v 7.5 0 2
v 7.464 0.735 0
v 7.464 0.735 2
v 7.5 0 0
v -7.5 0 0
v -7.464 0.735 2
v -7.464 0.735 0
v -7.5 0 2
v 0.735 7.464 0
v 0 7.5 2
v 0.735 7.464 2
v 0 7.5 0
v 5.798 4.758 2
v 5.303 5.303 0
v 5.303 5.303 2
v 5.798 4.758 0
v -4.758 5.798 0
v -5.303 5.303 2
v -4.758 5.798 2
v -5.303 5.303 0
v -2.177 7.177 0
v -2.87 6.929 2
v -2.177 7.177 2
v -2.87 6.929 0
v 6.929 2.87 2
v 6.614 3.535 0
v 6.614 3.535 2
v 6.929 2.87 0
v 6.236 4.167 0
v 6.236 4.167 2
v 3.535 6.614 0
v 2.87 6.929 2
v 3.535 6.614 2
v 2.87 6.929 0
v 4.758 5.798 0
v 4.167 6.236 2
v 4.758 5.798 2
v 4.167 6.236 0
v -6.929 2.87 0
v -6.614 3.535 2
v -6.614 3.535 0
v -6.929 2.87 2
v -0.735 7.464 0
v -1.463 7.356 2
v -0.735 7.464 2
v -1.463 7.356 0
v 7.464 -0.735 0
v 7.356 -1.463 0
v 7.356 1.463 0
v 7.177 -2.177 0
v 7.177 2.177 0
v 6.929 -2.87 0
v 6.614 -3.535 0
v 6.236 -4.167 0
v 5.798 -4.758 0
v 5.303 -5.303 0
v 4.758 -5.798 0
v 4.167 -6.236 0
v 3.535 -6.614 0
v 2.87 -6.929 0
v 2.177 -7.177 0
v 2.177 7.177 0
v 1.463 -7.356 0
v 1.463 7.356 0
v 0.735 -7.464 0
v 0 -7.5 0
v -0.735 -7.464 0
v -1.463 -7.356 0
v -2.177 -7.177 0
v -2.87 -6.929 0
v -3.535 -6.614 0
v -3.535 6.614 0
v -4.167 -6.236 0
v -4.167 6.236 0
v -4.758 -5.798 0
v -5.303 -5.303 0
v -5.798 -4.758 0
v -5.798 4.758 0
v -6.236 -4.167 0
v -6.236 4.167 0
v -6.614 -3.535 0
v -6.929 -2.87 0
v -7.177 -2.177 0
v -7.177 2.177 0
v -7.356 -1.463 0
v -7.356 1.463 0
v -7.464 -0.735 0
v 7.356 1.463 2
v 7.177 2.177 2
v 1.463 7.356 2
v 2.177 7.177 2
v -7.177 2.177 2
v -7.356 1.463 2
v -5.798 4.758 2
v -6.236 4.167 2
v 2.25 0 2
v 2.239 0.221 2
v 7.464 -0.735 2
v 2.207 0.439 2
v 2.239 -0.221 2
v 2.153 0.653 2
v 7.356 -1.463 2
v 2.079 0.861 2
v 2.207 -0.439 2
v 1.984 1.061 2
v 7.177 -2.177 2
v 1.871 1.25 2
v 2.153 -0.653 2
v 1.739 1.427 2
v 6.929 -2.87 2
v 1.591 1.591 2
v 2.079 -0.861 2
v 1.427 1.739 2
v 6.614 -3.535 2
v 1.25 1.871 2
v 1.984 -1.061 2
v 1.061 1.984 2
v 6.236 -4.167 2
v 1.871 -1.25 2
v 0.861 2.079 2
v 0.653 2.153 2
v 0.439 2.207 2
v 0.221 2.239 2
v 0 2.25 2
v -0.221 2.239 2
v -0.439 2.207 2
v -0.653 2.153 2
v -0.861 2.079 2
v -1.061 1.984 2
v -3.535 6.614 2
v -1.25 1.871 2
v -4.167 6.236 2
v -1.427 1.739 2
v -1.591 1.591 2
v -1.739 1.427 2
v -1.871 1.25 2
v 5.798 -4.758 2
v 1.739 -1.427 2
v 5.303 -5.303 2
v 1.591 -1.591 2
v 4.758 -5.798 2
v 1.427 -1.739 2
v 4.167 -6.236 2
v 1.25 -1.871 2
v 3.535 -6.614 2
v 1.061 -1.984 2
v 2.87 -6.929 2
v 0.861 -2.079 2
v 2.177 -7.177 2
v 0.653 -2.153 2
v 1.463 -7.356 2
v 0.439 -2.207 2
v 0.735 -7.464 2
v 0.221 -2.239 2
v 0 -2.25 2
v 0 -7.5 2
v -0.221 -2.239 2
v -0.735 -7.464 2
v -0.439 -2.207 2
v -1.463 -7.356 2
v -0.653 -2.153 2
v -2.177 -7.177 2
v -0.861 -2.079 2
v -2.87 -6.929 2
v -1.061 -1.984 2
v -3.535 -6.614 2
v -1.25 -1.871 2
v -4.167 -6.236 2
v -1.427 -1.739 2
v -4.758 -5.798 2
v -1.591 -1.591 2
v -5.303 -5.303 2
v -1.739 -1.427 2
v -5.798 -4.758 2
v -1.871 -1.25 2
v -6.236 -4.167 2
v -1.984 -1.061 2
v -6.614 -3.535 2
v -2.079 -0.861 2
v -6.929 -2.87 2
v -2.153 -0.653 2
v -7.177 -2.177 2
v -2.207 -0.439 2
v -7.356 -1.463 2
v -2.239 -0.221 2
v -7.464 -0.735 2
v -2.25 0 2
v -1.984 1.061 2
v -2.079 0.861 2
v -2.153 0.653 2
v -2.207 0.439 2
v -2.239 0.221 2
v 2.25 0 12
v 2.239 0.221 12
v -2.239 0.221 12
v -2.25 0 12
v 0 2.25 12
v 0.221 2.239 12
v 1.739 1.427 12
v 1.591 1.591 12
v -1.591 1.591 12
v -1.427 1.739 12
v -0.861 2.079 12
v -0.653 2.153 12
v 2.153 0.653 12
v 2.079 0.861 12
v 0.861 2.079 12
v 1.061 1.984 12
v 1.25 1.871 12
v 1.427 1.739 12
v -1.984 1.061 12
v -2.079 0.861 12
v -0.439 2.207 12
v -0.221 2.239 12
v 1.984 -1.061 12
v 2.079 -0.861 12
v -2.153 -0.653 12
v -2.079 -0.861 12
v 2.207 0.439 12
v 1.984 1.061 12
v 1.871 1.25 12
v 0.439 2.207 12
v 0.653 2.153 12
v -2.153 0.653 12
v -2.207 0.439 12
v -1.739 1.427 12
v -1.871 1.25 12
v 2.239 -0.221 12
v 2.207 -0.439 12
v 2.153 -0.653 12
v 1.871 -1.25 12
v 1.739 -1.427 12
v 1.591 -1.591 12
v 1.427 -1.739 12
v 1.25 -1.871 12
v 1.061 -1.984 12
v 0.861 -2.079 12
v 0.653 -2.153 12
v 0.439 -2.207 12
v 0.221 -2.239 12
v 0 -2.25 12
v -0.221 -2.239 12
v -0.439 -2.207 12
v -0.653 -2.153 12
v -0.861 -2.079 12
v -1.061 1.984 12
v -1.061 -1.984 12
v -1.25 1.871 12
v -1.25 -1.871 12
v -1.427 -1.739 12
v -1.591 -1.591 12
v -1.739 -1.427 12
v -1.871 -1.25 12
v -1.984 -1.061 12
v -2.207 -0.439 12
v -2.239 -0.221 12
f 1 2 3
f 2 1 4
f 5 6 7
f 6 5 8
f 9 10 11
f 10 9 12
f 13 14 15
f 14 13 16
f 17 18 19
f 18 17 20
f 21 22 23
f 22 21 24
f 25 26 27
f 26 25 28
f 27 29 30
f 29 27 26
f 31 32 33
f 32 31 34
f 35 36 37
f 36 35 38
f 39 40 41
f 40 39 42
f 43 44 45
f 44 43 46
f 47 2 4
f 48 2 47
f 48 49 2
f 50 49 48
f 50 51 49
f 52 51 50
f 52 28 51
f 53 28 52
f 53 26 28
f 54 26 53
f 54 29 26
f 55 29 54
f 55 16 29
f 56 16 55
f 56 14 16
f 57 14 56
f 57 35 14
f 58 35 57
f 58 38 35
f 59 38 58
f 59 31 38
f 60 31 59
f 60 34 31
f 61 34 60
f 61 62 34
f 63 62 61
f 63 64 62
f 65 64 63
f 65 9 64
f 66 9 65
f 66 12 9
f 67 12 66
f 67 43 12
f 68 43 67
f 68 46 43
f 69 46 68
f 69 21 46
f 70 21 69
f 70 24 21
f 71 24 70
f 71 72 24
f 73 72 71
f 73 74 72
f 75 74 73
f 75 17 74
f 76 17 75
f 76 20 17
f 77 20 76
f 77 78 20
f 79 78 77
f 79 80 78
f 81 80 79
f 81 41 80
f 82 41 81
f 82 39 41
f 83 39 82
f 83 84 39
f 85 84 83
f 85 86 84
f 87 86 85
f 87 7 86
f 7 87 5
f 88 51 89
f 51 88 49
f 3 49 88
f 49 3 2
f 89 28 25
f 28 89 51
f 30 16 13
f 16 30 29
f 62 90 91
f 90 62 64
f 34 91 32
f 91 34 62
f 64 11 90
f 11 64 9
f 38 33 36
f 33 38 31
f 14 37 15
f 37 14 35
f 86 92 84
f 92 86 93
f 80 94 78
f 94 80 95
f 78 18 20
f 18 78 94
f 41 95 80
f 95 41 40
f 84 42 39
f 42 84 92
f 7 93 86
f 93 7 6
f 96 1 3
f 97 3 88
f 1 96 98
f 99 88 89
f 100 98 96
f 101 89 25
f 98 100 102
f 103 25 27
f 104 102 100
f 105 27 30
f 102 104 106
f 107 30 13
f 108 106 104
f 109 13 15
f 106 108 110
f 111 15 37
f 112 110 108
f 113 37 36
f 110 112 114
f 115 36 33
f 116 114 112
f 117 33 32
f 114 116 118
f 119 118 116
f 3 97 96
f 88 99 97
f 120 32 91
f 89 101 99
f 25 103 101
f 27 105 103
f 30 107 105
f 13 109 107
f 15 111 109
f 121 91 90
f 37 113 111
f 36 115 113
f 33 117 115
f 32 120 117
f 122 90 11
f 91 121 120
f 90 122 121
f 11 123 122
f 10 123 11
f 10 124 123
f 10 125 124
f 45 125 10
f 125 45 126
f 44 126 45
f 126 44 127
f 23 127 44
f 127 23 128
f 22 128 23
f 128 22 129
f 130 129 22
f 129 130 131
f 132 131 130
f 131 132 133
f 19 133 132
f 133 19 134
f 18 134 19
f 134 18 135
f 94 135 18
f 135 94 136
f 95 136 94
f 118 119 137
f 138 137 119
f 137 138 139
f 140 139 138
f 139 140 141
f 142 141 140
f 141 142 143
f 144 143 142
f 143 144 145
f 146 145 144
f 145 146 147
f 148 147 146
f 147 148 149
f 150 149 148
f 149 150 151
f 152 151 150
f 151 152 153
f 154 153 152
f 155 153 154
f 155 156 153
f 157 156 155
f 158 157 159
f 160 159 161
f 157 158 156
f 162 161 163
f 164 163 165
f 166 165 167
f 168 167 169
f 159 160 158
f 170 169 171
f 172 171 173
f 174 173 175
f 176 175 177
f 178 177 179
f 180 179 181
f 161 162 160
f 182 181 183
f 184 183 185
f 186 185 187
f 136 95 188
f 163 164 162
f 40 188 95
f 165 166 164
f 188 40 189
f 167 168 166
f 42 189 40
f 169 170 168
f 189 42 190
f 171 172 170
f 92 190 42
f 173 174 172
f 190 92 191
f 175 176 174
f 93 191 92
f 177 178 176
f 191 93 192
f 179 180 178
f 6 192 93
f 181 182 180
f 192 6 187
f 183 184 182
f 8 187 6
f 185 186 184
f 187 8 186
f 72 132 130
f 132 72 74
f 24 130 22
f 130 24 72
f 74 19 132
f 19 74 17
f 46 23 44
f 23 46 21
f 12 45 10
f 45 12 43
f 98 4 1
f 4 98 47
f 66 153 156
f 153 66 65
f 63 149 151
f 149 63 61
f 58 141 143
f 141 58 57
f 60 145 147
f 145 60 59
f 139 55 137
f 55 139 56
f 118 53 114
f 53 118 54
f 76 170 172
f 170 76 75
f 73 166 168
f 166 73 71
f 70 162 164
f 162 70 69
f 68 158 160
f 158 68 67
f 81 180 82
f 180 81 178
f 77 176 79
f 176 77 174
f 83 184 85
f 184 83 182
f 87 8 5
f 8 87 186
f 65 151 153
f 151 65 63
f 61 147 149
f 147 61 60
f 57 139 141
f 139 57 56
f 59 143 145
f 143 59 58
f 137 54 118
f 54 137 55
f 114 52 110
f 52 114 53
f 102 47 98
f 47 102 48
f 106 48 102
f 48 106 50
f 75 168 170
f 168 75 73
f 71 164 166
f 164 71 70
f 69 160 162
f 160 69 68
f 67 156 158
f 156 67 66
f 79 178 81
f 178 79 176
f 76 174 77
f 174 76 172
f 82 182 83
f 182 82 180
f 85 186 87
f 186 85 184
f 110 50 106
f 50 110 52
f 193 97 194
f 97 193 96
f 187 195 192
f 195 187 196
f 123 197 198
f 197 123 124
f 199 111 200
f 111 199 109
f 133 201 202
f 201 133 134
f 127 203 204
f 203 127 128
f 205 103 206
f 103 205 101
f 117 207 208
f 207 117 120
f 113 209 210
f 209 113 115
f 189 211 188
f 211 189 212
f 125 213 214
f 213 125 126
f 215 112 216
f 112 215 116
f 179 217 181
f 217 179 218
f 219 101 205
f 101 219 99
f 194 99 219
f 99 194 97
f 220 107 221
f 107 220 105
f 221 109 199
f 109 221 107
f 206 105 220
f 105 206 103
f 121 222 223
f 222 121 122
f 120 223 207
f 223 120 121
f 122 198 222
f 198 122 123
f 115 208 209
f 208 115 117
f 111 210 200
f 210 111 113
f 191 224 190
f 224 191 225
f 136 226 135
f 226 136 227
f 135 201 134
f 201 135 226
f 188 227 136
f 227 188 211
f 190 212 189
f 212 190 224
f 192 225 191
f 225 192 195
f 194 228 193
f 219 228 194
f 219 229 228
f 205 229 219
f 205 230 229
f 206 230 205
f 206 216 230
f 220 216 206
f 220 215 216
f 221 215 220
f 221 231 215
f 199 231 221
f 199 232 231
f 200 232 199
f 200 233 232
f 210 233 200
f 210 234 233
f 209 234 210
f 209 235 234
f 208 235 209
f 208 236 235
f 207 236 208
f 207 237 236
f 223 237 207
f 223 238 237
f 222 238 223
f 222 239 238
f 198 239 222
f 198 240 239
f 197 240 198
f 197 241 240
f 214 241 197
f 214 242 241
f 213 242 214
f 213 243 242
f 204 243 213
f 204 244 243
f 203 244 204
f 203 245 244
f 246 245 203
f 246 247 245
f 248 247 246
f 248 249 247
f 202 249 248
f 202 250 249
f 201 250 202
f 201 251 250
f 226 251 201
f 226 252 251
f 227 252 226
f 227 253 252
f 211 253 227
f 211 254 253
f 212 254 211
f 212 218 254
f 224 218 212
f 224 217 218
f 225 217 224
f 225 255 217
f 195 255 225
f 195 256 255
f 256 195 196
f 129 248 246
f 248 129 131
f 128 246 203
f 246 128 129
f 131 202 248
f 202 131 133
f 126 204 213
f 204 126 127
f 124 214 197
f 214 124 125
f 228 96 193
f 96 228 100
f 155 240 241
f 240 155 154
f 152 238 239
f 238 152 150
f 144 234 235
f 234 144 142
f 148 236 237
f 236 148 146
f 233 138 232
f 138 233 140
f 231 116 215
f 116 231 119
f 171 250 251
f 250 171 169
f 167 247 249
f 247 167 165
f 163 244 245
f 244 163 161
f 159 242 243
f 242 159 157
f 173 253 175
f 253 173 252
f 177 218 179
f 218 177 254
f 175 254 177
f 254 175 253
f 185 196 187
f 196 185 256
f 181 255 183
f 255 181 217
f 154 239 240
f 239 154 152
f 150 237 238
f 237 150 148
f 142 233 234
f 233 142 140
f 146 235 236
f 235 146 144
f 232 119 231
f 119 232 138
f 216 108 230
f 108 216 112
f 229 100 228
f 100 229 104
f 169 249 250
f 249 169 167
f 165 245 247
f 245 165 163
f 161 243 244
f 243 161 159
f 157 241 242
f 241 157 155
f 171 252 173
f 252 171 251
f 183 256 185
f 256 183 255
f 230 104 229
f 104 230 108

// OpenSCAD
// schaltstift 2

$fn = 64;

cellRadius = 1.0;

cellSize = 5.0;

layerHeight = 2.0;

pinDiameter = 4.5;

blechSize  = cellSize * 3;


translate([0, 0, 0]) cylinder(h = layerHeight, d = blechSize);
translate([0, 0, layerHeight]) cylinder(h = layerHeight * 5, d = pinDiameter);
